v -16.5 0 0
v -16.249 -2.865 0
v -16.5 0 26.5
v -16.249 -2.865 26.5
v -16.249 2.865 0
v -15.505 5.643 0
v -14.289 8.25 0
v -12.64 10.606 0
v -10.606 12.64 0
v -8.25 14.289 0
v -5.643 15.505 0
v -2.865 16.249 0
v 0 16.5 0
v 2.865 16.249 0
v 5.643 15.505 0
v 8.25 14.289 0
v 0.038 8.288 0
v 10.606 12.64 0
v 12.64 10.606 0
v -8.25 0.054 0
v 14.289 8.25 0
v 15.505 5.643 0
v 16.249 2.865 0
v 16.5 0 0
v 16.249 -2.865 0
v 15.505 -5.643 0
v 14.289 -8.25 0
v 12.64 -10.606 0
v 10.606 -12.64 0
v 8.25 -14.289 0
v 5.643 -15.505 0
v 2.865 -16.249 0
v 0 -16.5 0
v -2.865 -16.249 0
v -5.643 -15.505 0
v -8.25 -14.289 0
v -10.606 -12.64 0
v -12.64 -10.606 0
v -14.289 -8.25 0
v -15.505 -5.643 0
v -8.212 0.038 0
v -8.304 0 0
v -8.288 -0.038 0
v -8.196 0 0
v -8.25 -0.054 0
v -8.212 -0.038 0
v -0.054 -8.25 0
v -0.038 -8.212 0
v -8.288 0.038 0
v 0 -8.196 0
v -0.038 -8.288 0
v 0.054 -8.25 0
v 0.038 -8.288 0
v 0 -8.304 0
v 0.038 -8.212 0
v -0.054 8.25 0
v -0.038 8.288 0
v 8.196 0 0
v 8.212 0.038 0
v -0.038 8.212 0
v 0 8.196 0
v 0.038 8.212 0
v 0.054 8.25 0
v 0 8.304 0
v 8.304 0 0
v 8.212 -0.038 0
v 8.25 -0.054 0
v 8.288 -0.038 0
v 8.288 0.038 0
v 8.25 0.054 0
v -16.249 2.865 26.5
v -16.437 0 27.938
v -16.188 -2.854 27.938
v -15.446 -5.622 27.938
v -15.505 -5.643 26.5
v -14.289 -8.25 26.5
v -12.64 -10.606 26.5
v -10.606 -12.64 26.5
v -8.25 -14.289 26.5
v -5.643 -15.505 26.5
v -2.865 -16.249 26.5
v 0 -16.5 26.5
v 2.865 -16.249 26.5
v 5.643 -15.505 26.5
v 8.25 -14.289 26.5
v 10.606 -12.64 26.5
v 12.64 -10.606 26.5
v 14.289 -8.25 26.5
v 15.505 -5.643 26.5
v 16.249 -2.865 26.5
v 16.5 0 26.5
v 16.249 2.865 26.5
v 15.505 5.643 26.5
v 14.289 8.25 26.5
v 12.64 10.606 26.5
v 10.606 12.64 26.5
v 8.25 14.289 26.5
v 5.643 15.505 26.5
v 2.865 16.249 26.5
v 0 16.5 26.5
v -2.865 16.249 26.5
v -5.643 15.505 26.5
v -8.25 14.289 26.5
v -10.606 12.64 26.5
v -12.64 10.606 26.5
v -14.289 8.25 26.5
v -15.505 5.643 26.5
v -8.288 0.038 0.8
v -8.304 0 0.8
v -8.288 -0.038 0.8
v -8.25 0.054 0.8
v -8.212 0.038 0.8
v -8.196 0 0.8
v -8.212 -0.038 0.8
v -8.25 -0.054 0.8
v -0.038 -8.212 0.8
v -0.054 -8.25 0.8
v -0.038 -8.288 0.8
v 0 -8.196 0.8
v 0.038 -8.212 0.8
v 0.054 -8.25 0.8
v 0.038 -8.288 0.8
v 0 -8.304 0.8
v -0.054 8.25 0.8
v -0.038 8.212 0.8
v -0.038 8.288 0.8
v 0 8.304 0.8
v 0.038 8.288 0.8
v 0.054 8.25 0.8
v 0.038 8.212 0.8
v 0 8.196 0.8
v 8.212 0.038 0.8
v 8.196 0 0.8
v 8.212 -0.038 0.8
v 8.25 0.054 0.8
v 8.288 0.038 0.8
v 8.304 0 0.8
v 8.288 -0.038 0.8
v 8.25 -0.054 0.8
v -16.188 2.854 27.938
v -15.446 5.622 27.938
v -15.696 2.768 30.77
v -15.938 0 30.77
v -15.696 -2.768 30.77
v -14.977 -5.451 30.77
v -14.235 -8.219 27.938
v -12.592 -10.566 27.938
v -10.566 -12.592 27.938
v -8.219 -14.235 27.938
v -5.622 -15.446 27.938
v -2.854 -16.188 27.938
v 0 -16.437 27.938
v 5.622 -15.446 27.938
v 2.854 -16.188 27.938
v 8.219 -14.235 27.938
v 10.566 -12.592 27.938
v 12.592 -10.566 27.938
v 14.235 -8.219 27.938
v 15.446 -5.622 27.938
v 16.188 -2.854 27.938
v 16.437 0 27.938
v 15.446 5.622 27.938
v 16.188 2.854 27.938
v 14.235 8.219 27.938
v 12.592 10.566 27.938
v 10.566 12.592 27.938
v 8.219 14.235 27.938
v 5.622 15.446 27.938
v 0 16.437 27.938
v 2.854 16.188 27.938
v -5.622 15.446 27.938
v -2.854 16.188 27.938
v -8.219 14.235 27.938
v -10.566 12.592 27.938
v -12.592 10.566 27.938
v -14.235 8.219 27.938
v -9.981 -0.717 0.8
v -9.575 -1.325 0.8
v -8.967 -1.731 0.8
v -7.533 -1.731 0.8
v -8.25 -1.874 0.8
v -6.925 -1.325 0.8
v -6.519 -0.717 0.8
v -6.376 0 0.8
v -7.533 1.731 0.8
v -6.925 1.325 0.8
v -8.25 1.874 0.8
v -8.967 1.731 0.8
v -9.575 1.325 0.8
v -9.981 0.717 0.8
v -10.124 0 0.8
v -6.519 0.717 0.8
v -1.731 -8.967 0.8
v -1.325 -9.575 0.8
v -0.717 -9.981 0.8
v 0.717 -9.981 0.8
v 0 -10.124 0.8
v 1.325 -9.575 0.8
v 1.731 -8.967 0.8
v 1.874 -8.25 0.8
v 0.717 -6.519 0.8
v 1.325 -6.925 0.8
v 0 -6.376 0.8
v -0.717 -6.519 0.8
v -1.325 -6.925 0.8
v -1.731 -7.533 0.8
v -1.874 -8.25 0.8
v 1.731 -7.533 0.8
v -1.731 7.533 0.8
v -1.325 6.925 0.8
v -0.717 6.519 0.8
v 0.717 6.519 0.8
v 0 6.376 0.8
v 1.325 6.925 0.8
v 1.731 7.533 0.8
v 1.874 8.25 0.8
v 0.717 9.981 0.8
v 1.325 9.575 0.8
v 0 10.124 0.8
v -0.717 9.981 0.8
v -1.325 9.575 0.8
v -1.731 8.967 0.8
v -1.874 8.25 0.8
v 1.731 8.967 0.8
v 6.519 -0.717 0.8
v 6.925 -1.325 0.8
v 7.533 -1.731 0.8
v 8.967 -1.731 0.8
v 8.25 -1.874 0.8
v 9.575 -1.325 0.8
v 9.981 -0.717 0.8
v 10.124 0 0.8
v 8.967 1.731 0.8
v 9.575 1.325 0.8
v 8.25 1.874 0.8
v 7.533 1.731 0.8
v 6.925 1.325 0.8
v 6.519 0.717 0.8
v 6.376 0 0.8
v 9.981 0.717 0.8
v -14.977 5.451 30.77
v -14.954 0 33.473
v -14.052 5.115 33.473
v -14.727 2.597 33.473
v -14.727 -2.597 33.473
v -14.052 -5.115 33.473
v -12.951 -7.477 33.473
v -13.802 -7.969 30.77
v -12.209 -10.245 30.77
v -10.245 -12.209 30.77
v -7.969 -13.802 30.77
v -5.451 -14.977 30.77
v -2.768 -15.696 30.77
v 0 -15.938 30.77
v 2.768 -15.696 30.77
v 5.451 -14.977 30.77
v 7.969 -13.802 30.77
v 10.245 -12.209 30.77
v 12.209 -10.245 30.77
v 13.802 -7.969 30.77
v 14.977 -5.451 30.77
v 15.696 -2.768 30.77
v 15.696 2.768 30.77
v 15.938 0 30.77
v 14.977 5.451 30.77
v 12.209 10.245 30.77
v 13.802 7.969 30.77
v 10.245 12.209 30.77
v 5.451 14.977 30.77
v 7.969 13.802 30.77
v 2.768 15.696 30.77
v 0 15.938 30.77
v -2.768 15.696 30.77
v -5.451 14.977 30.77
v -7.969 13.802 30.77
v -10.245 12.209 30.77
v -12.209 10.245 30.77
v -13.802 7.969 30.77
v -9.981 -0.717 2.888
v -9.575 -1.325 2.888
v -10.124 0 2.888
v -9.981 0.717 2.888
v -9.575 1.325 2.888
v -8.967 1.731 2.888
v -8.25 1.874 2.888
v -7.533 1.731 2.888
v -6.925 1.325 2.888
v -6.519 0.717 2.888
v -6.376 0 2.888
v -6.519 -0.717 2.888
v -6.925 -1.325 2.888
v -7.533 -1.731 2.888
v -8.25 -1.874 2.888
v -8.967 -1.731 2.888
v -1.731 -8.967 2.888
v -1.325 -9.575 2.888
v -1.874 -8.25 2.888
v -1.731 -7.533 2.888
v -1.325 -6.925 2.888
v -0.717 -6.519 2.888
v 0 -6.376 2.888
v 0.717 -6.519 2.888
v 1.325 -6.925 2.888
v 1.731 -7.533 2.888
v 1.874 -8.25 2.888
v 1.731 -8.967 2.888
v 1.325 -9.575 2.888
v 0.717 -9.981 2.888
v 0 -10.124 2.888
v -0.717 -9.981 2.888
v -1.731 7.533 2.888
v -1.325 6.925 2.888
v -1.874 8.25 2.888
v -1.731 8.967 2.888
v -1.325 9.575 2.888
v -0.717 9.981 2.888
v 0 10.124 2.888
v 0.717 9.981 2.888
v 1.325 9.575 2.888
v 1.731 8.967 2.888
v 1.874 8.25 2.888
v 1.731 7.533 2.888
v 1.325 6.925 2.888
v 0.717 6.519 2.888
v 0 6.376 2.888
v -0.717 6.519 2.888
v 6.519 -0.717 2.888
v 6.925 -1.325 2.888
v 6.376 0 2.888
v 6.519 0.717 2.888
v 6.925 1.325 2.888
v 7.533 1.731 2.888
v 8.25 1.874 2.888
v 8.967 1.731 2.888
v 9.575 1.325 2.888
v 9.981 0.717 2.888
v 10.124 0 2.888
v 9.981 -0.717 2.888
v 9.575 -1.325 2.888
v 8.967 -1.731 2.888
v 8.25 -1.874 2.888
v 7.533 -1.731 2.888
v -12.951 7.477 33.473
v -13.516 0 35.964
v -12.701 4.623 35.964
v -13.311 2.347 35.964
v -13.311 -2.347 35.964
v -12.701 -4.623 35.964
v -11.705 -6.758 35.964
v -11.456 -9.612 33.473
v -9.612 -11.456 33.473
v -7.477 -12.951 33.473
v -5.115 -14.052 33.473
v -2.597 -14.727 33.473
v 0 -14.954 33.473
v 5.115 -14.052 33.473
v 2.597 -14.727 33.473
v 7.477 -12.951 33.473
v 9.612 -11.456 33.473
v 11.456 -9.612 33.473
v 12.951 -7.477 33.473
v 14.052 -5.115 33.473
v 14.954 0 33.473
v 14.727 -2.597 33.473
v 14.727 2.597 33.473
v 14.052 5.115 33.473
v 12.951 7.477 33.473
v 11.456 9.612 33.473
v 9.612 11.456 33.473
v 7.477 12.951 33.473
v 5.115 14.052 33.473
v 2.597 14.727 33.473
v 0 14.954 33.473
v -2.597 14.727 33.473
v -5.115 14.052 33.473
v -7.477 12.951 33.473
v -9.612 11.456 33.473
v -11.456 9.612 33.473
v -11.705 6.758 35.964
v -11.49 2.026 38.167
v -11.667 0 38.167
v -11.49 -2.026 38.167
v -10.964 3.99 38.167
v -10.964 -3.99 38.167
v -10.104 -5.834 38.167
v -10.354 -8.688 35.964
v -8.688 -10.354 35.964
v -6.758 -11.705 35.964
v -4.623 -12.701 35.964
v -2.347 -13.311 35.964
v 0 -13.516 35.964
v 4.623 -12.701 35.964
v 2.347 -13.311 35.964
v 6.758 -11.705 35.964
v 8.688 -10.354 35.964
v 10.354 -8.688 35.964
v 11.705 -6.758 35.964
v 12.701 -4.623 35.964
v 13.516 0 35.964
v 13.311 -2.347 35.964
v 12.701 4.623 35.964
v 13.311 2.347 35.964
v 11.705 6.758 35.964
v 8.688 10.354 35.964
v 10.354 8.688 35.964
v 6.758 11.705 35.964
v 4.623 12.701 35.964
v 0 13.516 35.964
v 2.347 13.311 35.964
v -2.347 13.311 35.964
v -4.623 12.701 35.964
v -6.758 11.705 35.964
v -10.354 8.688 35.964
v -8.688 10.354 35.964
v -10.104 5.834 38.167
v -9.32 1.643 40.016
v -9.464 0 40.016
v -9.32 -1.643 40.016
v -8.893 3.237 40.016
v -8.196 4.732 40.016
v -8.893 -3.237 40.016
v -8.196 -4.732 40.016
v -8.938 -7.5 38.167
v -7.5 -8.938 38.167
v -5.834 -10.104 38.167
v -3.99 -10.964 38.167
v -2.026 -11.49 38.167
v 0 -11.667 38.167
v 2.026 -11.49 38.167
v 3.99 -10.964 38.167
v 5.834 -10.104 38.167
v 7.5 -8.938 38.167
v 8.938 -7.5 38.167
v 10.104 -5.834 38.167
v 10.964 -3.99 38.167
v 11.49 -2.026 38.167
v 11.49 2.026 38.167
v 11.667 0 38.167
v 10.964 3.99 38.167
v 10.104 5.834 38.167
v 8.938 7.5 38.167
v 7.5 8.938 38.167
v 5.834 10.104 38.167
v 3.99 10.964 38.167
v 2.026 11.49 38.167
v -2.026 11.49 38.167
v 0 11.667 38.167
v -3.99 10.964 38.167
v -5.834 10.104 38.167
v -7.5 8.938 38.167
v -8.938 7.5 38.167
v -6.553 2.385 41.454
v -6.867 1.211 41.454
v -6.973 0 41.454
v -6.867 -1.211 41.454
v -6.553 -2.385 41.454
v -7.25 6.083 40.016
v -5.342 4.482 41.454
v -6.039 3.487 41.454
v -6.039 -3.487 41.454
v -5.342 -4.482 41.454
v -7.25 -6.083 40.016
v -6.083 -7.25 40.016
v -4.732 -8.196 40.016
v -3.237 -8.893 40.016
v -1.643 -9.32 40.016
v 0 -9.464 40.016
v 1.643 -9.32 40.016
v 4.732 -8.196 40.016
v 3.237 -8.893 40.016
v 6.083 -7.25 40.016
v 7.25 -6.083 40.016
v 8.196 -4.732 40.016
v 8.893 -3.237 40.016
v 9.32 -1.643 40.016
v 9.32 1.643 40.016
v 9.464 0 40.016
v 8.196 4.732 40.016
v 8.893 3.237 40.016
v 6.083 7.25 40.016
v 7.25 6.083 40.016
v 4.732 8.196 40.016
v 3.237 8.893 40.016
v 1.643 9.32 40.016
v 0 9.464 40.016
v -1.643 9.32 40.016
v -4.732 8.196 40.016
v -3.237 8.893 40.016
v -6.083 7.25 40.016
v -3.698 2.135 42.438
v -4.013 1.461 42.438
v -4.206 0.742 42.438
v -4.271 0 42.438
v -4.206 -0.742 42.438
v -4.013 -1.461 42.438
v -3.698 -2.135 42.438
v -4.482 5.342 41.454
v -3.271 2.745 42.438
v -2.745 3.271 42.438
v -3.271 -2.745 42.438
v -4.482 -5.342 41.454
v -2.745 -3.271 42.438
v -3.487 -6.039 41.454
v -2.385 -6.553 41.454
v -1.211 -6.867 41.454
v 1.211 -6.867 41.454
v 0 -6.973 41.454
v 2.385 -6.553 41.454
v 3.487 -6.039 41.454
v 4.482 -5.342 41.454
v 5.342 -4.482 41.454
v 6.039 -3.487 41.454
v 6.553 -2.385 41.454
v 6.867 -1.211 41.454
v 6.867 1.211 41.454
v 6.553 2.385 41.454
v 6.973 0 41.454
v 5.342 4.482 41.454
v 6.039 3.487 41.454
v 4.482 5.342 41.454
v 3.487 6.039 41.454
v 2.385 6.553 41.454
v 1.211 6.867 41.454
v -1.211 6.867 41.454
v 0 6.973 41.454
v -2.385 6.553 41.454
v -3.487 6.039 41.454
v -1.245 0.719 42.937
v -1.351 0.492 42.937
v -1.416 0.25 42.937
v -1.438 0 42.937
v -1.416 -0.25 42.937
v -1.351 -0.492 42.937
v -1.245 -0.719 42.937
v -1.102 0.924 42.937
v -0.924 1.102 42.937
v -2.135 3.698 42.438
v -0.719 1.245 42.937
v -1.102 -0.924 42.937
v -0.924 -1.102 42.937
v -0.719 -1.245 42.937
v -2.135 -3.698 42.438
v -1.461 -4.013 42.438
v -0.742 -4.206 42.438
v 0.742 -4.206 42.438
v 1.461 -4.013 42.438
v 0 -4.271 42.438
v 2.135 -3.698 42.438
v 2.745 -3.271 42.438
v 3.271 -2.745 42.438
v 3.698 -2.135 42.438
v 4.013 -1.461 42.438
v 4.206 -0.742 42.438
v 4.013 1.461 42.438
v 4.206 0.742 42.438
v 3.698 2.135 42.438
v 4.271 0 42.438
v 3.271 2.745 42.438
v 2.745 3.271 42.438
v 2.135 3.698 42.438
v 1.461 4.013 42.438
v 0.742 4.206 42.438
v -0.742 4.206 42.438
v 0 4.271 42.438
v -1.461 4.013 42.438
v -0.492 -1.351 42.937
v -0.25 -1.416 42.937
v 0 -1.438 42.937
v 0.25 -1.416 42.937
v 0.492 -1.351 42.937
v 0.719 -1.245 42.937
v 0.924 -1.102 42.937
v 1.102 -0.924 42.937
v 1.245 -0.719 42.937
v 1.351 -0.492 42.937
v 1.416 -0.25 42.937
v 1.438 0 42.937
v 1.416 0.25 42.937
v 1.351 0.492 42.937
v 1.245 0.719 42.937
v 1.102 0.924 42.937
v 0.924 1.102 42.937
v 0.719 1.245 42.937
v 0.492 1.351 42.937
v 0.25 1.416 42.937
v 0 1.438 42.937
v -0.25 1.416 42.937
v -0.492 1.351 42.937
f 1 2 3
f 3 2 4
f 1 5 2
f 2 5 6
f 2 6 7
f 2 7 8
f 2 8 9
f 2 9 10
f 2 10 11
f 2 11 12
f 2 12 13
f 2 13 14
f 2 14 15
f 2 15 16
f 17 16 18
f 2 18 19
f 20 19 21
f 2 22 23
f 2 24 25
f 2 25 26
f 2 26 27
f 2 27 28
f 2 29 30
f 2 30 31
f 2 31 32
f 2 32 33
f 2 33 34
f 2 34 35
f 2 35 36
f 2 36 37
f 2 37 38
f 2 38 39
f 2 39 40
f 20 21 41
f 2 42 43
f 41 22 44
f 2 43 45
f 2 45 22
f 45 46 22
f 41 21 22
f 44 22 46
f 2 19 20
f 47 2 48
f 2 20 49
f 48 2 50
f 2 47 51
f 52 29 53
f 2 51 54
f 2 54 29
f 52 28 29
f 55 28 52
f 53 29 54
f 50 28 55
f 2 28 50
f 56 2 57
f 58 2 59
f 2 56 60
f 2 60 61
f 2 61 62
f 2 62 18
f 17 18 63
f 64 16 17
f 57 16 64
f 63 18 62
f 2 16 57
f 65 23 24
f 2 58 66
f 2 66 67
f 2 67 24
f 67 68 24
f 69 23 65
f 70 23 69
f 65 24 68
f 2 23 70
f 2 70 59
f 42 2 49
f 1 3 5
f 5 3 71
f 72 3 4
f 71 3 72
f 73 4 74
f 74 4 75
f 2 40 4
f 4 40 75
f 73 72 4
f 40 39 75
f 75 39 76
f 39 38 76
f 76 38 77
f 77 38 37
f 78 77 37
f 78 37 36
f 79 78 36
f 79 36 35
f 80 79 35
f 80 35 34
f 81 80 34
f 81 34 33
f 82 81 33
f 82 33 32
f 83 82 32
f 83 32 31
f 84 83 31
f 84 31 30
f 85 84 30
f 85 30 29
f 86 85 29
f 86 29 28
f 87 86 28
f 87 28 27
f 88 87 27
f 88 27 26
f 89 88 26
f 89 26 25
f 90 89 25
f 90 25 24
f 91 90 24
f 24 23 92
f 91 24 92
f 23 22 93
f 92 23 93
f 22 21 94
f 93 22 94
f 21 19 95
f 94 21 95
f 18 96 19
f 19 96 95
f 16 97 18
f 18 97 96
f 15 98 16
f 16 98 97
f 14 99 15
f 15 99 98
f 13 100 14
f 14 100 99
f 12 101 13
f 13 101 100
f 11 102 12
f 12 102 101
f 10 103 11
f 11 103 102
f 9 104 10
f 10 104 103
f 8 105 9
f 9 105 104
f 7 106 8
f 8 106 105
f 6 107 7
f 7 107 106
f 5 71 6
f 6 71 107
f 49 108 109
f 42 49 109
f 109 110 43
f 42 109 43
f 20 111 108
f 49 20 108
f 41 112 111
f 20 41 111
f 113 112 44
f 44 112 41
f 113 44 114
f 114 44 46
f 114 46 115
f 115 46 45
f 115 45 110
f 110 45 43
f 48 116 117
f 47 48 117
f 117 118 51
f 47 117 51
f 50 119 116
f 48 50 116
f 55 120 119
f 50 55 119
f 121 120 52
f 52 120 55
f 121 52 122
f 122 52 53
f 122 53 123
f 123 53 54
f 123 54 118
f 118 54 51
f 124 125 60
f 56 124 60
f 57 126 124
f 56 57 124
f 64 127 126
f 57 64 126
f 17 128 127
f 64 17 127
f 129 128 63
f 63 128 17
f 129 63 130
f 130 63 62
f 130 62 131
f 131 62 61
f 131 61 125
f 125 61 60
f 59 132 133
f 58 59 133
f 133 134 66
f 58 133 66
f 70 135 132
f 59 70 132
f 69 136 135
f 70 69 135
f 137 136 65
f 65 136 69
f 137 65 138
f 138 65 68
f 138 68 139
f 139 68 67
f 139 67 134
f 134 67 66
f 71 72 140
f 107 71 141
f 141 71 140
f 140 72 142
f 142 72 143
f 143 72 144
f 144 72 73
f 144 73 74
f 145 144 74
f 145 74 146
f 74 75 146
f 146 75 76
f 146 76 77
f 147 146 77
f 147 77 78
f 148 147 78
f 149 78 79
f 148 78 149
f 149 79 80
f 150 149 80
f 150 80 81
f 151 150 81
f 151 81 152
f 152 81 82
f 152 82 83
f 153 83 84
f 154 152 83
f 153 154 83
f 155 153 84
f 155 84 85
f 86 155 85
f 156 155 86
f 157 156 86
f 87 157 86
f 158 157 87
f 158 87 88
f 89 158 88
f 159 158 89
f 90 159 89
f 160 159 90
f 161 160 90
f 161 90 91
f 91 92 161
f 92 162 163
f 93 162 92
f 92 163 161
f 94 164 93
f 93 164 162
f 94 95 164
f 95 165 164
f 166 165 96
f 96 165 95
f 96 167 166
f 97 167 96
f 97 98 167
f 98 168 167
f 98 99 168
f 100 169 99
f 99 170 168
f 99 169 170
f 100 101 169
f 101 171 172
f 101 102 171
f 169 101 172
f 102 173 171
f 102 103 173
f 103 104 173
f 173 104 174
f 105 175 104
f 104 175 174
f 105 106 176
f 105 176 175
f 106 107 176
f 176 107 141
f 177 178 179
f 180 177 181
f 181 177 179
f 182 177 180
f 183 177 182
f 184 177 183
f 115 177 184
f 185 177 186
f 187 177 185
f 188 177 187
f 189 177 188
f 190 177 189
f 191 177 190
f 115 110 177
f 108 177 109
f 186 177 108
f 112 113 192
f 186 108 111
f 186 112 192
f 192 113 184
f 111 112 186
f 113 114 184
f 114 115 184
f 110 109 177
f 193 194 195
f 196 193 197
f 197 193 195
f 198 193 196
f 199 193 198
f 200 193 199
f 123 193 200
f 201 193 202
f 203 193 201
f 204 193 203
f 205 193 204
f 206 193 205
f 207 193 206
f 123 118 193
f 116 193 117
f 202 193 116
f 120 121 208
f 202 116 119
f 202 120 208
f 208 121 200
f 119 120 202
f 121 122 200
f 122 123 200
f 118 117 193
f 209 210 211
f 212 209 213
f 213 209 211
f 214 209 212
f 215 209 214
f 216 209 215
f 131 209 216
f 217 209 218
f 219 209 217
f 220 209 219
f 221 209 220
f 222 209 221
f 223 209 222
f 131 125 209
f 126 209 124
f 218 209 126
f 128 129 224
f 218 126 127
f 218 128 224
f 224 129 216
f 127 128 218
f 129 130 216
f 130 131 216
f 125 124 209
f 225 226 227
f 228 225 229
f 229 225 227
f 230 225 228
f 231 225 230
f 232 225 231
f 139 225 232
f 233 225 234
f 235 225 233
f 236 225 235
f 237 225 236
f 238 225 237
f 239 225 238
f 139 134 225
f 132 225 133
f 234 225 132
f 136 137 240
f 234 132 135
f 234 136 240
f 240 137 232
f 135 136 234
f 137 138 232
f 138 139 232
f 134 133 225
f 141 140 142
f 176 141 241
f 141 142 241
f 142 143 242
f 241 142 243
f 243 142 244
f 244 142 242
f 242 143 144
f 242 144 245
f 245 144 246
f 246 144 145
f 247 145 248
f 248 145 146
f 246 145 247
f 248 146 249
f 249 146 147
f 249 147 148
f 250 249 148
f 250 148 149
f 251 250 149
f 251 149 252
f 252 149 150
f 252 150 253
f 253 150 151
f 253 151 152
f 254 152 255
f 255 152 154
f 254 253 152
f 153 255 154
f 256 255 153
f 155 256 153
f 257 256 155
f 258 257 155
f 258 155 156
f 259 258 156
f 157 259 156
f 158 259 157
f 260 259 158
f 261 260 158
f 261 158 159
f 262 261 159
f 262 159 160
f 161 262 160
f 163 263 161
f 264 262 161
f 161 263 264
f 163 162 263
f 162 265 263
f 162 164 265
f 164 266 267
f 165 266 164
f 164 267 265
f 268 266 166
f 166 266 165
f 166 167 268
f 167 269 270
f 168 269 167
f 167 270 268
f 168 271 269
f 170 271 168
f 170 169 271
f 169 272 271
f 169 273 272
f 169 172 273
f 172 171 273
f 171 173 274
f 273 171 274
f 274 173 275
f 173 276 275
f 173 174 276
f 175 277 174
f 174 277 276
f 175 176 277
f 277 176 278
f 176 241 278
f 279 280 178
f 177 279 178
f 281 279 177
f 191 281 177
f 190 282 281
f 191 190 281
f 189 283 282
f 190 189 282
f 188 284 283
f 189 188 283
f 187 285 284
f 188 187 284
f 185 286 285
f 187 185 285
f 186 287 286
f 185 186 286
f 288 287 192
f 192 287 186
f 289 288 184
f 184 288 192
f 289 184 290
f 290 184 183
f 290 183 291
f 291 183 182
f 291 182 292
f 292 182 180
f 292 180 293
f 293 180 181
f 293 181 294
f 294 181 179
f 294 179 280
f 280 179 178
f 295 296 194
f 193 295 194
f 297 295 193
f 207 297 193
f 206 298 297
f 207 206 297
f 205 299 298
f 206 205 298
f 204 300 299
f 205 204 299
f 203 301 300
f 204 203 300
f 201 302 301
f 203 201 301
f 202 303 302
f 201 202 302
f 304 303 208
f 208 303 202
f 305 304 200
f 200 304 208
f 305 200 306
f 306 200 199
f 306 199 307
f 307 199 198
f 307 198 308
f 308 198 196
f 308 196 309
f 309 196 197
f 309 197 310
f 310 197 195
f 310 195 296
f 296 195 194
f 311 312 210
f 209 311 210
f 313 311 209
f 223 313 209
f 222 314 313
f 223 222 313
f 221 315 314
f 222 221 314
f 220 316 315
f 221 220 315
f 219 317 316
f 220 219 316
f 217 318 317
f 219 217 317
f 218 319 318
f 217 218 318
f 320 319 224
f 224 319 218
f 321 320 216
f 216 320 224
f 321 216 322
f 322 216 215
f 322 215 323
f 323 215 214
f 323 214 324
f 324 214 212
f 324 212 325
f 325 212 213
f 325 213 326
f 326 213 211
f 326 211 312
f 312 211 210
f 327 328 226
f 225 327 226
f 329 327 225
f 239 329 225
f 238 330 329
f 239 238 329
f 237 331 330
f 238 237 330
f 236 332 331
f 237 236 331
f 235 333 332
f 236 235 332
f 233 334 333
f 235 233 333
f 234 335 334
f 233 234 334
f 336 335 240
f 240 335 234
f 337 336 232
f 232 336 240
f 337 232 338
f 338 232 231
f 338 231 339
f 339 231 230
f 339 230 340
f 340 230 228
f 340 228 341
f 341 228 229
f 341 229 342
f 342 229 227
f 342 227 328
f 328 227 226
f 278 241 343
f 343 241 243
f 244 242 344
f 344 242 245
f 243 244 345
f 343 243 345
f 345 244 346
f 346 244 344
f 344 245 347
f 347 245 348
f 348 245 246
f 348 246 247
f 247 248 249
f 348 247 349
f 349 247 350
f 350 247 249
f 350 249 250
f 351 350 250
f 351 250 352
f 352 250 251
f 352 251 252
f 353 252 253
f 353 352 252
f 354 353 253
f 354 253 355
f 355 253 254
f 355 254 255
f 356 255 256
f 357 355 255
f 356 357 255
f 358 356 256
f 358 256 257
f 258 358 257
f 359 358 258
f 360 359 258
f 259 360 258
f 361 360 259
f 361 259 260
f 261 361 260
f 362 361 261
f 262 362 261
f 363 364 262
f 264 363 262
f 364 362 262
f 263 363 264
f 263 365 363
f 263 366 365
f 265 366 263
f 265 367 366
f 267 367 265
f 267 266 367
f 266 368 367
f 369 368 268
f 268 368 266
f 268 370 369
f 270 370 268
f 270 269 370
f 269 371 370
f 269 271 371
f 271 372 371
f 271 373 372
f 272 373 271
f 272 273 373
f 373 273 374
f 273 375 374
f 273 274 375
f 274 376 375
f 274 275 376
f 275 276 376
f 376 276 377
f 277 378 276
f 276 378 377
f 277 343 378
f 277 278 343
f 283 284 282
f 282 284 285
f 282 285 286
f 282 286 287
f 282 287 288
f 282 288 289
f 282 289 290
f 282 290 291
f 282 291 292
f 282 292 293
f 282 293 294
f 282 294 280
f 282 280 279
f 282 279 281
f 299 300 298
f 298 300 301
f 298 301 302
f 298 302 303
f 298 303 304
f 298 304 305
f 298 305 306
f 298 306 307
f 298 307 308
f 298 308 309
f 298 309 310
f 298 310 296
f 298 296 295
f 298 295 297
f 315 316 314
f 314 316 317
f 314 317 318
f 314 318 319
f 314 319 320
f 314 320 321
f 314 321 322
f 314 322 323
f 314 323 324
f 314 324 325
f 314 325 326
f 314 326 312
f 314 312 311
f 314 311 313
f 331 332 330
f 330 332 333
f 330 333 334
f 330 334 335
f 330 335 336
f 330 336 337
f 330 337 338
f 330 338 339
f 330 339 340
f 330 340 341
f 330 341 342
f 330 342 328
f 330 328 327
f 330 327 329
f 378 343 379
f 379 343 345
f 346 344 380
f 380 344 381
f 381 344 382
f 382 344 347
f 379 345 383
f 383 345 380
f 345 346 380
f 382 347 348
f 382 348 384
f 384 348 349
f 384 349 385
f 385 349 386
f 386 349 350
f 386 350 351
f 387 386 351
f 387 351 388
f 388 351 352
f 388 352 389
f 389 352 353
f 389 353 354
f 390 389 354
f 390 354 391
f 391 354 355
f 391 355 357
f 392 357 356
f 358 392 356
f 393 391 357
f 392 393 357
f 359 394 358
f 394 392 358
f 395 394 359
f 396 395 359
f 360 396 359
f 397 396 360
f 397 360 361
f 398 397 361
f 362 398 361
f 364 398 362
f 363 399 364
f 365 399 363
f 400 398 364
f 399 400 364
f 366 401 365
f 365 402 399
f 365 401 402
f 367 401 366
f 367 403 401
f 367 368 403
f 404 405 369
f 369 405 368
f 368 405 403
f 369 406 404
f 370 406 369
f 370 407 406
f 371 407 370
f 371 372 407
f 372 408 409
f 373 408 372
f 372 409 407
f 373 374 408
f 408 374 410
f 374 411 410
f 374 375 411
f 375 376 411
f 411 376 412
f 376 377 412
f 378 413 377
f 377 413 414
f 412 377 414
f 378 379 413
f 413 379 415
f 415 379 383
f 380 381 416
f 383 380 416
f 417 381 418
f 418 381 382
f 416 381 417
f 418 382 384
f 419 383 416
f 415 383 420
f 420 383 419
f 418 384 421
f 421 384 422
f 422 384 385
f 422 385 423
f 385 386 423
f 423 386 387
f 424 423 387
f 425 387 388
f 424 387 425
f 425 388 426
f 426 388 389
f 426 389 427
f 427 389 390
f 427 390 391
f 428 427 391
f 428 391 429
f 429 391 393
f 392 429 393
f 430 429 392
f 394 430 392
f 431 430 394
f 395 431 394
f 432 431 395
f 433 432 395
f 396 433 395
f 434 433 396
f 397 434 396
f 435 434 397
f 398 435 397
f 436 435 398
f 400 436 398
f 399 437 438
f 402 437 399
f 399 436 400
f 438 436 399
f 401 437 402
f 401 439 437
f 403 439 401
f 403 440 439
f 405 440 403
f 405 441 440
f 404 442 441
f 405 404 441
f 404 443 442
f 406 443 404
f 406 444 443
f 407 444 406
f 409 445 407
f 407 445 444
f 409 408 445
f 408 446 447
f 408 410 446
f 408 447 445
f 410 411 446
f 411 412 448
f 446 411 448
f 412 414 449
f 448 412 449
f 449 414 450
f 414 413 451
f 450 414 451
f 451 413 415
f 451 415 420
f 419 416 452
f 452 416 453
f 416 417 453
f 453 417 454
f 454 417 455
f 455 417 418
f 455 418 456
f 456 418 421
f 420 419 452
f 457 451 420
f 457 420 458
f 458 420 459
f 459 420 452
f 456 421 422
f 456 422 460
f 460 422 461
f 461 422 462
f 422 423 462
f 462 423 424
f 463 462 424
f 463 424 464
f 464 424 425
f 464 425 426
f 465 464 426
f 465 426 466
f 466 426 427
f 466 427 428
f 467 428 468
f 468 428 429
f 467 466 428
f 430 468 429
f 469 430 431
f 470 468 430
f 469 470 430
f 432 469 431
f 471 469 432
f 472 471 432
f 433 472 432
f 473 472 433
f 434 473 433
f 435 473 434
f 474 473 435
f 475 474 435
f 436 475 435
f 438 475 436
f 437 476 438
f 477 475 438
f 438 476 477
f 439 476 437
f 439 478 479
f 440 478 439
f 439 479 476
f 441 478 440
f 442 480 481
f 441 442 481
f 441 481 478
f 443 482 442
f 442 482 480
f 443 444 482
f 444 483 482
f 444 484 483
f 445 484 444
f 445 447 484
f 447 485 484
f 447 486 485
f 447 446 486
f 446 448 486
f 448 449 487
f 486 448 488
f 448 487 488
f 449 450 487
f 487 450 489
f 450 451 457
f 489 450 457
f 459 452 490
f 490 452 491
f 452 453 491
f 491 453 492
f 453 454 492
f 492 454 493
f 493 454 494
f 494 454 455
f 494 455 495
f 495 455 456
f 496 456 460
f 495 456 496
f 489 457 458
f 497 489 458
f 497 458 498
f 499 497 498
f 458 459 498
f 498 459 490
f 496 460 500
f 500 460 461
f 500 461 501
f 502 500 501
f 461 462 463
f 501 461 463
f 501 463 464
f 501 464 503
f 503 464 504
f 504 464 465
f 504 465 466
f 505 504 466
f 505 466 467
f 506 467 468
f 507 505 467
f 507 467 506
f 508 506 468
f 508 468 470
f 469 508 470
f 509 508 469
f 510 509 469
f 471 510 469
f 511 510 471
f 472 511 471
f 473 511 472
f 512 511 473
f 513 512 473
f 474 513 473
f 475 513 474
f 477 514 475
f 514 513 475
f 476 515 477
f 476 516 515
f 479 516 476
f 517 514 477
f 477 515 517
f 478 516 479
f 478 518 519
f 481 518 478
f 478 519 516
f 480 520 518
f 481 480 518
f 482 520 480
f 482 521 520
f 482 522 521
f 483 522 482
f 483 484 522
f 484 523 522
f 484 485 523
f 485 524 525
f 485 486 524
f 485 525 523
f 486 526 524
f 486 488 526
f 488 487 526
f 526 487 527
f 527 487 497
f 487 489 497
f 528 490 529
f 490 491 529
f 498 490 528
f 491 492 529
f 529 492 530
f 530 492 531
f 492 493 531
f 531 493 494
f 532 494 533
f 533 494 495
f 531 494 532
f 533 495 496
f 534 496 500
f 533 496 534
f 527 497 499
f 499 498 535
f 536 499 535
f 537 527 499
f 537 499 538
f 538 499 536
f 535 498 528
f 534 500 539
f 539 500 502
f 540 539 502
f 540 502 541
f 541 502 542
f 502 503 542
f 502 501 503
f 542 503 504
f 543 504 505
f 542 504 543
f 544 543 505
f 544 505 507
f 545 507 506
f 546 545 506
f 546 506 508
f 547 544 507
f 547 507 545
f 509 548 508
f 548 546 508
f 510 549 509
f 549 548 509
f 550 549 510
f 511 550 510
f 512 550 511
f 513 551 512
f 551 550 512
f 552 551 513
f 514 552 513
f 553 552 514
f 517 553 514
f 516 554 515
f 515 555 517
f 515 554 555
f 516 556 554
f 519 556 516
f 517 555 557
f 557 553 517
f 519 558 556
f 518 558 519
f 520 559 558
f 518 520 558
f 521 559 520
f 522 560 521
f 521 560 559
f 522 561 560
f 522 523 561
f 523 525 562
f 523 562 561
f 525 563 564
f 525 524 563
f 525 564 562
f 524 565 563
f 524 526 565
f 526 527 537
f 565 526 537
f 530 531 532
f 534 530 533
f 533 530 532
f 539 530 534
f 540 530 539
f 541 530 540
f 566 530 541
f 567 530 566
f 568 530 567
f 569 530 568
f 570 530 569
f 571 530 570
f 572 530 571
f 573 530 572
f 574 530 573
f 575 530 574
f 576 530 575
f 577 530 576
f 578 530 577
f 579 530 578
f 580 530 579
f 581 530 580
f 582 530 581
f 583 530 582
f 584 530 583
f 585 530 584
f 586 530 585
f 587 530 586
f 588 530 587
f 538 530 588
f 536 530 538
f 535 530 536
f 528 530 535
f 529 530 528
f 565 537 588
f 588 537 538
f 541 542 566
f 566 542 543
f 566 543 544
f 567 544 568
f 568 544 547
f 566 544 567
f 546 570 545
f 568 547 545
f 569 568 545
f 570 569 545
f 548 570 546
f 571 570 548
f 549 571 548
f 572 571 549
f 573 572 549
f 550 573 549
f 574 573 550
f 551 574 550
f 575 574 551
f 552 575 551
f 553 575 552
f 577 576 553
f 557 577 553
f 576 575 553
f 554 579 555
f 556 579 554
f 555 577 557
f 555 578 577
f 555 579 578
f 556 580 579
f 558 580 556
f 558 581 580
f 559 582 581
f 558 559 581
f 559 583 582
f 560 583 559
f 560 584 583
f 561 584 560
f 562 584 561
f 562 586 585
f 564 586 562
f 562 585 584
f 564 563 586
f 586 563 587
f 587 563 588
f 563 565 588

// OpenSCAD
// file: common.scad
left   = -1;
right  = 1;
top    = 1;
bottom = -1;
front  = -1;
rear   = 1;

// 1/8" x 1/16" inch magnet -- very tiny!
magnet_diam      = 3.175;
magnet_thickness = 3.175/2;

magnet_clearance = 0.25;

magnet_hole_diam      = magnet_diam      + magnet_clearance*2;
magnet_hole_thickness = magnet_thickness + magnet_clearance*2;

magnet_dist_to_exterior = 0.8;

function accurate_diam(diam,sides) = 1 / cos(180/sides) / 2 * diam;

module hole(diam,len,sides=8) {
  cylinder(r=accurate_diam(diam,sides),h=len,center=true,$fn=sides);
}
// main file
include <common.scad>;

diam = 33;
height = diam+10;
opacity = 0.5;

module circular_prism() {
  sphere_z = height - diam/2;

  module body() {
    color("lightblue", opacity) hull() {
      translate([0,0,sphere_z/2]) {
        cylinder(r=diam/2,h=sphere_z,center=true,$fn=36);
      }

      translate([0,0,sphere_z]) {
        sphere(r=diam/2,$fn=36);
      }
    }
  }

  module holes() {
    magnet_z = magnet_hole_thickness/2+magnet_dist_to_exterior;
    //magnet_z = 0;

    echo("PAUSE AT ", magnet_z + magnet_thickness/2);

    for (i=[0:3]) {
      rotate([0,0,90*i]) {
        translate([diam/4,0,0]) {
          translate([0,0,magnet_z]) {
            hole(magnet_hole_diam,magnet_hole_thickness,16);
          }
          # hole(.1,magnet_z*2,8);
        }
      }
    }
  }

  difference() {
    body();
    holes();
  }
}

circular_prism();
